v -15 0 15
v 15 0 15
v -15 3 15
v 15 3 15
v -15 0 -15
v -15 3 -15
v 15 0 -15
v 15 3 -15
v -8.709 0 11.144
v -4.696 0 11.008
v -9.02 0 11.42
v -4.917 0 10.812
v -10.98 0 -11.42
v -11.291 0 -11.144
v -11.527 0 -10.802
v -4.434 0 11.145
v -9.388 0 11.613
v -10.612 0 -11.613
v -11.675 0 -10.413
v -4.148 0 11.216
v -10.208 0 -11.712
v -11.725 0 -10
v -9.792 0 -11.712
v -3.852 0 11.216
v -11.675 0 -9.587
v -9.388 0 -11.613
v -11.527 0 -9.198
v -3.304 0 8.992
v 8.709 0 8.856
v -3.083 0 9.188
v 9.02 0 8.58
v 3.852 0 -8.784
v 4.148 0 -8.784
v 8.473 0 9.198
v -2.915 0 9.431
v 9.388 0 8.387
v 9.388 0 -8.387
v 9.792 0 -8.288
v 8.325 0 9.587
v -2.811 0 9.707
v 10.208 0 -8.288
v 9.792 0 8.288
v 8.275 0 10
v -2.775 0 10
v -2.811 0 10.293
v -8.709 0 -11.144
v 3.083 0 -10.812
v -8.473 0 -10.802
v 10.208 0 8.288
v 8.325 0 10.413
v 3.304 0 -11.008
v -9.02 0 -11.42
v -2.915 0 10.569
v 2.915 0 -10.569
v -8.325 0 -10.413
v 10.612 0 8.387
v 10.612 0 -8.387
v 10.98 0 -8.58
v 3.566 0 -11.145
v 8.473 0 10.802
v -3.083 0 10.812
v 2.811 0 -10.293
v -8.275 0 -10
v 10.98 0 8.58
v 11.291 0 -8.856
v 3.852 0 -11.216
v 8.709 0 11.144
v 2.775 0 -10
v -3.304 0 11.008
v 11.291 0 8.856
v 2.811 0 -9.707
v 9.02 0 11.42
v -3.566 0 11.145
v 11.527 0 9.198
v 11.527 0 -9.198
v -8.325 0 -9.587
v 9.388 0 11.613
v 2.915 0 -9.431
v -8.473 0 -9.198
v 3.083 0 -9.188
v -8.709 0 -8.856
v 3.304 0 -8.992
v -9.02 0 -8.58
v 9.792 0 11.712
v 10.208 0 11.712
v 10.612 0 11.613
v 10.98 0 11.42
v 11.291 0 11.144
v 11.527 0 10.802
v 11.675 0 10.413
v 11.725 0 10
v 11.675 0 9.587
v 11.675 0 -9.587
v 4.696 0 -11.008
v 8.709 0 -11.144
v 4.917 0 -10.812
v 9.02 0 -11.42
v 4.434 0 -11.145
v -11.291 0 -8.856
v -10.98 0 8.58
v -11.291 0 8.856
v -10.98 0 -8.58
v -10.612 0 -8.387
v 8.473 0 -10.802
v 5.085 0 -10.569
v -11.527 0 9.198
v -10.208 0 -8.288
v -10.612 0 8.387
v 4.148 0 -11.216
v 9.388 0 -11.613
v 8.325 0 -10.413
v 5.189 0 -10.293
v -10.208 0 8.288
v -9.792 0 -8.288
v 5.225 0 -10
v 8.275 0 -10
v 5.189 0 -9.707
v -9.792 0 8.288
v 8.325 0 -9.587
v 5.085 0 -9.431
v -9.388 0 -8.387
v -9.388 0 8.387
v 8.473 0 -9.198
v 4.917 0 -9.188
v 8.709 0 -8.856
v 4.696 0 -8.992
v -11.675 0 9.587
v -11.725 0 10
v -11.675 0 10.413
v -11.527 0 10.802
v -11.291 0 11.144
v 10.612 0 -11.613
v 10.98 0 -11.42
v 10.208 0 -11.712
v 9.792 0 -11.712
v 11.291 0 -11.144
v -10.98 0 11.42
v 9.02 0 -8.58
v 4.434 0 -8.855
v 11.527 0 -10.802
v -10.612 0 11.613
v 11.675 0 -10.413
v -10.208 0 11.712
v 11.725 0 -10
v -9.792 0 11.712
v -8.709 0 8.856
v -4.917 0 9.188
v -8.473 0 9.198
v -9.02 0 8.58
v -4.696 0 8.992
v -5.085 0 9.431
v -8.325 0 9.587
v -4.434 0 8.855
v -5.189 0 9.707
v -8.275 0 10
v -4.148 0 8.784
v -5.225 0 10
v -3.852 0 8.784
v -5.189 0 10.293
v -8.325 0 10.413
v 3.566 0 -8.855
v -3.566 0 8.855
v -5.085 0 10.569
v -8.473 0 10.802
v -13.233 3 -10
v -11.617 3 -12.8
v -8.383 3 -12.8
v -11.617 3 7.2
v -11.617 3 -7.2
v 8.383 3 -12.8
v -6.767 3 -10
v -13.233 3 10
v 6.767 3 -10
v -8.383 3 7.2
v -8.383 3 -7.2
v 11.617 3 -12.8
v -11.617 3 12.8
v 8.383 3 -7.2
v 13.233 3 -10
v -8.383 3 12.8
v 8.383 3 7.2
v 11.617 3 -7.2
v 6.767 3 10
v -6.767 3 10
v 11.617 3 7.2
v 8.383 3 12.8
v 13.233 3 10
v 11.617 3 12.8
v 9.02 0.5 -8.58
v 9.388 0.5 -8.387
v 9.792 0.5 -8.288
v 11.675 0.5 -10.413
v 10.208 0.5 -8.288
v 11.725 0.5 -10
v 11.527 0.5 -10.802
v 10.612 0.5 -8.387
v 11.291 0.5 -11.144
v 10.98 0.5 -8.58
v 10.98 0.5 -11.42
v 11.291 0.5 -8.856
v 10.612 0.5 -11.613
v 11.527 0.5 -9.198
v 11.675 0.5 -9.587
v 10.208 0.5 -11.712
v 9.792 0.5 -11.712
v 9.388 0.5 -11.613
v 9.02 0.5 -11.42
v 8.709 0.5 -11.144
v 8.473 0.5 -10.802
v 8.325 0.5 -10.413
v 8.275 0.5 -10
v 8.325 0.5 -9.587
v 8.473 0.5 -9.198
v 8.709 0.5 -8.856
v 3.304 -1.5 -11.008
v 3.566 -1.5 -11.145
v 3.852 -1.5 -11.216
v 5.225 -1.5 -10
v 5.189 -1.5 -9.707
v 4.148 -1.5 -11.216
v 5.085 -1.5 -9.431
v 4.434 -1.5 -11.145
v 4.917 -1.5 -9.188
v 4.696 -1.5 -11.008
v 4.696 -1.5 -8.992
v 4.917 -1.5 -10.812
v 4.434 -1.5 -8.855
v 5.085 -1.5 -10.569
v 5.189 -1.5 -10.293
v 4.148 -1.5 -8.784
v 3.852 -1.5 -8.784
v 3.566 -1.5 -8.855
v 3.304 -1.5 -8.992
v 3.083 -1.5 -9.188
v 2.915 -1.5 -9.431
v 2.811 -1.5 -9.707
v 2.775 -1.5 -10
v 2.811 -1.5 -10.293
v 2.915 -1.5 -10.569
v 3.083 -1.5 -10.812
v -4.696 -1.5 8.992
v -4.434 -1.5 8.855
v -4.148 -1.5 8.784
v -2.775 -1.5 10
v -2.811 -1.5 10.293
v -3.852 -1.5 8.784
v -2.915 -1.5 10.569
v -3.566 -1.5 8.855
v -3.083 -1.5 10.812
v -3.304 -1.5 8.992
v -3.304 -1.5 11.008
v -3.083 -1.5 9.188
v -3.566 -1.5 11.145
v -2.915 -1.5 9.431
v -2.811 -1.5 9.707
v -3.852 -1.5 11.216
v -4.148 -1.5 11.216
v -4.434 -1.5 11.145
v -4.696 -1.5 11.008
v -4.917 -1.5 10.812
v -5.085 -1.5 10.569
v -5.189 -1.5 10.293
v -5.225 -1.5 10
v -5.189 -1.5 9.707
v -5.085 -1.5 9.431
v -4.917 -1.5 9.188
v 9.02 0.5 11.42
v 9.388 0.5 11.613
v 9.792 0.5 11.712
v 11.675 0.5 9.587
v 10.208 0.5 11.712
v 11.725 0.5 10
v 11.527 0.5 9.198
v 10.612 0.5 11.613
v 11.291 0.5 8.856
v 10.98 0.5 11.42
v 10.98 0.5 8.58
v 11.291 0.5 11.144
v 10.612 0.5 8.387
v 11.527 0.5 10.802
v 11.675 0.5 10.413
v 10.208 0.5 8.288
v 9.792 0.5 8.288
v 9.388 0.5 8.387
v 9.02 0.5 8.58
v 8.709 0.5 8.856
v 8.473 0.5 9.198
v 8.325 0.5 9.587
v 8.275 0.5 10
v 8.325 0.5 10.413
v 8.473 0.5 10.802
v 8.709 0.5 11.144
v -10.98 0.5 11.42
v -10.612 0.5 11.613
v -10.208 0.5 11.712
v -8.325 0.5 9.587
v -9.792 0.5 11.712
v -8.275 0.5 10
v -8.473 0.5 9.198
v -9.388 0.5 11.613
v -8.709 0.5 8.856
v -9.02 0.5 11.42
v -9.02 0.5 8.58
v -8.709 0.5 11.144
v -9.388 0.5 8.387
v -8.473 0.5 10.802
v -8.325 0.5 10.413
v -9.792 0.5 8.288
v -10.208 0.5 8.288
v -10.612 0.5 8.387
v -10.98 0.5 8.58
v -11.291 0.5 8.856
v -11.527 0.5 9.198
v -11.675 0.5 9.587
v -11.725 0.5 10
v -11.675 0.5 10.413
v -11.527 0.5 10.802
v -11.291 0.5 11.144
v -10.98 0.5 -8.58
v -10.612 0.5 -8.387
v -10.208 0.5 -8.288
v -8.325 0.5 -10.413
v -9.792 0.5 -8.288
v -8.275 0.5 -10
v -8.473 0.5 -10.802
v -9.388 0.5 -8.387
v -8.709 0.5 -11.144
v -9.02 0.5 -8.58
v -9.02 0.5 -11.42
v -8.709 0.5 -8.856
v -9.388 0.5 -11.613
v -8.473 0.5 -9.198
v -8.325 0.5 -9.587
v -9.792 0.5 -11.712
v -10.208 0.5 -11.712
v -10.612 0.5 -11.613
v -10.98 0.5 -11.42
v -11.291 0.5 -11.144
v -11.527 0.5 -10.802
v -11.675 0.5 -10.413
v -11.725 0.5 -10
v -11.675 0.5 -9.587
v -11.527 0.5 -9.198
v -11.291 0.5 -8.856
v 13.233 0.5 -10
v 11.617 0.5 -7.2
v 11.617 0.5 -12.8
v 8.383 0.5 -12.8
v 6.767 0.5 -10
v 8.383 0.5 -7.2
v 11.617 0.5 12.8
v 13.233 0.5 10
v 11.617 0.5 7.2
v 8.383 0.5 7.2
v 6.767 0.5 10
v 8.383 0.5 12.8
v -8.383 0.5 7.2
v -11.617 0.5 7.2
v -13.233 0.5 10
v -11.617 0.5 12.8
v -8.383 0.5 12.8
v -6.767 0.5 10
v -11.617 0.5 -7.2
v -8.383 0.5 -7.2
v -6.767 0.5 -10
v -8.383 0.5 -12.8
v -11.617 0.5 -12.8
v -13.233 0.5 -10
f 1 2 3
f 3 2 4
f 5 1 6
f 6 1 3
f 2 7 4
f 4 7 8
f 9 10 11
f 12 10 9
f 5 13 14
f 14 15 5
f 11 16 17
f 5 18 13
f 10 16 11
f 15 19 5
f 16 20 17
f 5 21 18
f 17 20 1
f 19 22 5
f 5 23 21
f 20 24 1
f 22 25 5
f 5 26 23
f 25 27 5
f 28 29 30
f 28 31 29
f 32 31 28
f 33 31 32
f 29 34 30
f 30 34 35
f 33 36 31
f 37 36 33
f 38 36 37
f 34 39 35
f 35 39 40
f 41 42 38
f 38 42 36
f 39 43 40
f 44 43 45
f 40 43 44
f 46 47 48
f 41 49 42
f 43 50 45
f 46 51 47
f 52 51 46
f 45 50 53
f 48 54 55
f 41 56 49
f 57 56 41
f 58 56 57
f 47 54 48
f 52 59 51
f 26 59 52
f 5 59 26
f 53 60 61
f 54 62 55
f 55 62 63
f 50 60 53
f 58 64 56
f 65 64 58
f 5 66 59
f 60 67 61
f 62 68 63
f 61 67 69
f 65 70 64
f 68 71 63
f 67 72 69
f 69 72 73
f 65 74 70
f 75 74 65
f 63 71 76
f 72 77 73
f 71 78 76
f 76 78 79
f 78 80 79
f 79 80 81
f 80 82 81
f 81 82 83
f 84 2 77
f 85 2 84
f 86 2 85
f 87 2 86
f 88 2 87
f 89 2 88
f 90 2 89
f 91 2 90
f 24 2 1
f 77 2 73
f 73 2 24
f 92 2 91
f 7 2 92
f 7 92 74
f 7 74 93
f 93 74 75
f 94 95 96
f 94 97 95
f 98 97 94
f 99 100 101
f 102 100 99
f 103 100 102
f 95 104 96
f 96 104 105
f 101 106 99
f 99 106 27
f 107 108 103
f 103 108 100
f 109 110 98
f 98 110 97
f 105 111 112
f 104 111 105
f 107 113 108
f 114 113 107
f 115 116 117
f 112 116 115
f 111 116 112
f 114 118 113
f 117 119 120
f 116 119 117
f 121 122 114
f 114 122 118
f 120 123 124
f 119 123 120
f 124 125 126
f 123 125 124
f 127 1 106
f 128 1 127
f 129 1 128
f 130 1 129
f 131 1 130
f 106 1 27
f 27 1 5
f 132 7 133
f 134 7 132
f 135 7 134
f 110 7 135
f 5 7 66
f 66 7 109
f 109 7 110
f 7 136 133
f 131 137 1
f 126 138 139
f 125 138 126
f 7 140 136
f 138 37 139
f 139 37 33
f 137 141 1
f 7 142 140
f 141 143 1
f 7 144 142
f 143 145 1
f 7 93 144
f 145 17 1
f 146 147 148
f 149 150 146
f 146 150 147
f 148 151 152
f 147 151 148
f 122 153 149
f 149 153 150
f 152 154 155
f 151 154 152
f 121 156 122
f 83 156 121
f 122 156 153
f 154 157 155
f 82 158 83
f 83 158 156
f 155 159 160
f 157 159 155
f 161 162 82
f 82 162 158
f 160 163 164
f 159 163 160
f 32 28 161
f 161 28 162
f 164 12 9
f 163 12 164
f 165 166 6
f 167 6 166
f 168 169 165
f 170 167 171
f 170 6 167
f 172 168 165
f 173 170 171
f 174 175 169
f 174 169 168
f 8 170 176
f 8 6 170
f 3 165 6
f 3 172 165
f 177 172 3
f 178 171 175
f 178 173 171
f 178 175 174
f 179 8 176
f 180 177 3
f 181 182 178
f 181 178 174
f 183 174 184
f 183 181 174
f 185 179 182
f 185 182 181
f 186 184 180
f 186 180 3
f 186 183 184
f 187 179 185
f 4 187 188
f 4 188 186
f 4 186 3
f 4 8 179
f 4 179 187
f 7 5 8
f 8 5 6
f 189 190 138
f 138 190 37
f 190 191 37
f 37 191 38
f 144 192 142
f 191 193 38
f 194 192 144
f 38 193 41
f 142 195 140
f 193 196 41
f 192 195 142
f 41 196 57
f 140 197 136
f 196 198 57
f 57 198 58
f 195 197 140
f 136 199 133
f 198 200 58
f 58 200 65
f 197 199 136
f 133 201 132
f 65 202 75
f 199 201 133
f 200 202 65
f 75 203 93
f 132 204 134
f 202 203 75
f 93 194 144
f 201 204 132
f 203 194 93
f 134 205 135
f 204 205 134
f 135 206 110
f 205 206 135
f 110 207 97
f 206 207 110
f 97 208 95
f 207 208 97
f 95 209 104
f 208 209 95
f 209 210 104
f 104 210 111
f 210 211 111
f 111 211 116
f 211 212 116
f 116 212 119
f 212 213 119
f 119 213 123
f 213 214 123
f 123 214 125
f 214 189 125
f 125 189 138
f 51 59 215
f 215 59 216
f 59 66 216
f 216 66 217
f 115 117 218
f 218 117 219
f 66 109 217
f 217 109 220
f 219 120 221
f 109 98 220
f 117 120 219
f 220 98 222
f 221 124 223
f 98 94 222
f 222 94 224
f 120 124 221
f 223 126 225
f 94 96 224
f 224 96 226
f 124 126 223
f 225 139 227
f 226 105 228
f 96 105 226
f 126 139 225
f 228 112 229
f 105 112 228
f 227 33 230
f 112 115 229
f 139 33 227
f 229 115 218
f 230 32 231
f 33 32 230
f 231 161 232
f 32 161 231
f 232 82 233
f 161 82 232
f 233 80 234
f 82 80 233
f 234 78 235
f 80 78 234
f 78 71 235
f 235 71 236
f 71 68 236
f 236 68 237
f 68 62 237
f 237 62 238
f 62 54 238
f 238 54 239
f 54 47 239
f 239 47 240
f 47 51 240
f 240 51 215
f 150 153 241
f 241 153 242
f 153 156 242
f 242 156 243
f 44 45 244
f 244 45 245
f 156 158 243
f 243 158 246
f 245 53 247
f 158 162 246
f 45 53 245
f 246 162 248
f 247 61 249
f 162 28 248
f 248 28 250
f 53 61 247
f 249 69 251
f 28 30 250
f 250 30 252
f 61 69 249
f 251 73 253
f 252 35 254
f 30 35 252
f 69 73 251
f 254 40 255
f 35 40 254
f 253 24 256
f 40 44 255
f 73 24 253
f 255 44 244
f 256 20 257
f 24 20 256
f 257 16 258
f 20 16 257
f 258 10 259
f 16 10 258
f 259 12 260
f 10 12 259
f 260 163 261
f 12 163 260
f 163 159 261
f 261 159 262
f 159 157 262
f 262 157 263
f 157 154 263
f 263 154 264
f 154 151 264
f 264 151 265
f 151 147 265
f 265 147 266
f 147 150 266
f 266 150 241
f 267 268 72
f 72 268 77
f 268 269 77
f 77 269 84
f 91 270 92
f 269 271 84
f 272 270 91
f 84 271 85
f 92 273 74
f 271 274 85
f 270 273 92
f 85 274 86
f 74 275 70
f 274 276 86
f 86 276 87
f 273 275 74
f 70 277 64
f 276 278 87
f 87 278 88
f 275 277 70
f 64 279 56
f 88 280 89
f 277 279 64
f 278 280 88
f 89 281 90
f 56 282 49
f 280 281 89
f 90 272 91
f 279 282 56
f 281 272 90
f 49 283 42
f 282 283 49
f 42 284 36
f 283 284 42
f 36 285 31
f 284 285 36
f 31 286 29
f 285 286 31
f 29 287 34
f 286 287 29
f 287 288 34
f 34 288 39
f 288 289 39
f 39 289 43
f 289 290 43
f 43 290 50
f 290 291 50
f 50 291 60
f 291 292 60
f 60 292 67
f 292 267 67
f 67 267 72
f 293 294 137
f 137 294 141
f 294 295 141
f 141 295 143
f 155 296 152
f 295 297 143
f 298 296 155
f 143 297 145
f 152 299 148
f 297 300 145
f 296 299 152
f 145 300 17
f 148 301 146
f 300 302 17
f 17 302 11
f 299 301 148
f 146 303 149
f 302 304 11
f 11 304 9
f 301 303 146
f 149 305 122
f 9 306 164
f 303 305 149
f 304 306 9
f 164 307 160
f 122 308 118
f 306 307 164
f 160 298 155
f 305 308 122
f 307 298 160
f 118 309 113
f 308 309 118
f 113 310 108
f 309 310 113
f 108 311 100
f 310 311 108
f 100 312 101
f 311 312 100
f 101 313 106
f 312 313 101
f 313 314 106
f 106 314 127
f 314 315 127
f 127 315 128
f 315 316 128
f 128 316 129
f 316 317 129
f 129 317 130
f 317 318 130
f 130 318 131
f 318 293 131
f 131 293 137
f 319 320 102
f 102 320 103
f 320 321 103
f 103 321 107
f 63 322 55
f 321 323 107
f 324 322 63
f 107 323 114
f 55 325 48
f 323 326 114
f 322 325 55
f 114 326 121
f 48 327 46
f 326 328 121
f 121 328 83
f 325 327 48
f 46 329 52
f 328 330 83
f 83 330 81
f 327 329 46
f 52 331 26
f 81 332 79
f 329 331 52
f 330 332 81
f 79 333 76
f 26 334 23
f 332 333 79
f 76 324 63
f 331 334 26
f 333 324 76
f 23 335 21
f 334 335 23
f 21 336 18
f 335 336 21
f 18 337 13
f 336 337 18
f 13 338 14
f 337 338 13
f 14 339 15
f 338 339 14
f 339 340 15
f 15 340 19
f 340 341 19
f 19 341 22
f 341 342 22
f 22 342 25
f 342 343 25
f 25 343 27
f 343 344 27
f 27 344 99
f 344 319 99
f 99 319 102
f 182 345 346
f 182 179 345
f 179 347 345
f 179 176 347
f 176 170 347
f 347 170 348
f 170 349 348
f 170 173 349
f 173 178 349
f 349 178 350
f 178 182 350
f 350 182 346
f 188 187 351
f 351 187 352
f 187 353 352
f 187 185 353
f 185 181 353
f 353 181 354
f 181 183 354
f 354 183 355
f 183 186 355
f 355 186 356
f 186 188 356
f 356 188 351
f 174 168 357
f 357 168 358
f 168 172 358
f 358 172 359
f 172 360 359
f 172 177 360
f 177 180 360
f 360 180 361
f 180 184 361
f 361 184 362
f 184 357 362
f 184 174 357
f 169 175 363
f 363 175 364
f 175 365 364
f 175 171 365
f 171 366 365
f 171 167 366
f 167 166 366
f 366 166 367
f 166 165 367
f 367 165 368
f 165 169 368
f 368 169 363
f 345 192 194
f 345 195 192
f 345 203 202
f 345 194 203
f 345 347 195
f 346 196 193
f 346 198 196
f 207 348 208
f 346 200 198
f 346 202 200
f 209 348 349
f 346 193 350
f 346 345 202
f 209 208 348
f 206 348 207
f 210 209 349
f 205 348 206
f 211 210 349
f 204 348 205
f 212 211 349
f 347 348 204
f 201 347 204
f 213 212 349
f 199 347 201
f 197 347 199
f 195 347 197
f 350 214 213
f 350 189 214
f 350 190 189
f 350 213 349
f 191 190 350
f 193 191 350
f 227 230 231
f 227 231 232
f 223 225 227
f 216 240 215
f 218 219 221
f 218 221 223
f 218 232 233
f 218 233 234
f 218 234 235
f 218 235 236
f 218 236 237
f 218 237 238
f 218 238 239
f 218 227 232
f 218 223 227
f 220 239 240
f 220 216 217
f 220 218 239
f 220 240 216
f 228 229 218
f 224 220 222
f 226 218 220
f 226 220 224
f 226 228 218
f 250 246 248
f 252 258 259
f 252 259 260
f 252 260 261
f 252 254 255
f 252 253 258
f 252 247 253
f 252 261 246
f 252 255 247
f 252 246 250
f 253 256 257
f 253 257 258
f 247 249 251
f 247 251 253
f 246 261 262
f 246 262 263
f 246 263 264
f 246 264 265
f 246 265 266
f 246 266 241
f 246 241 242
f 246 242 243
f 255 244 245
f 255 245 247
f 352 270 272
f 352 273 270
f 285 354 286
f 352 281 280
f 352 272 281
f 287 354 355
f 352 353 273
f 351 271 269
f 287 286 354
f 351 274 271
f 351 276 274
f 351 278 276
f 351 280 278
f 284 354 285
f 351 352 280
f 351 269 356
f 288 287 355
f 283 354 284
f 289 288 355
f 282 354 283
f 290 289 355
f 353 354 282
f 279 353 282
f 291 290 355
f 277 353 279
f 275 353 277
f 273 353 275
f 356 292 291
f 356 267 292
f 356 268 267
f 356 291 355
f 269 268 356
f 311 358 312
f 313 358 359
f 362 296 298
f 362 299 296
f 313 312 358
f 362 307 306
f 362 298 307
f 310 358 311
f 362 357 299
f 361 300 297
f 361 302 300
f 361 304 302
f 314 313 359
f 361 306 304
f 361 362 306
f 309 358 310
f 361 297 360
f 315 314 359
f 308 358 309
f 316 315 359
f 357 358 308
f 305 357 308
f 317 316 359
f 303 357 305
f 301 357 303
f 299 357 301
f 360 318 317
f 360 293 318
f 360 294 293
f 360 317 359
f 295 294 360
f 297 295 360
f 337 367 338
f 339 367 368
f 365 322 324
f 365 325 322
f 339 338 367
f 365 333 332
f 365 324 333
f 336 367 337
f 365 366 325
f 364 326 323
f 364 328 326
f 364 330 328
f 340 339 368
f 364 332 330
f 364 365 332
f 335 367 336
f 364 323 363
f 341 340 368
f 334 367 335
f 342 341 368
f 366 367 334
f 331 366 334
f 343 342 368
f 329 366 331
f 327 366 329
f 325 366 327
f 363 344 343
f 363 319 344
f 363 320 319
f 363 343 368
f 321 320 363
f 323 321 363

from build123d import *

# Parameters (mm, degrees)
SKETCH_W        = 30
SKETCH_H        = 30
PAD_DEPTH       = 3
POCKET_DEPTH    = 2.5
SKETCH002_R     = 1.725
POCKET001_DEPTH = 5
SKETCH003_R     = 1.225
PAD001_DEPTH    = 1.5


with BuildPart() as part:
    # Sketch → Pad (new body)
    with BuildSketch(Plane.XZ):
        Rectangle(SKETCH_W, SKETCH_H)
    extrude(amount=-PAD_DEPTH)

    # Sketch001 (on Face6 of Pad) → Pocket (cut)
    with BuildSketch(Plane(origin=(0, 3, 0), x_dir=(1, 0, 0), z_dir=(0, 1, 0))):
        Polygon((-11.616581, 7.2), (-8.383419, 7.2), (-6.766838, 10), (-8.383419, 12.8), (-11.616581, 12.8), (-13.233162, 10), align=None)
        Polygon((11.616581, 7.2), (13.233162, 10), (11.616581, 12.8), (8.383419, 12.8), (6.766838, 10), (8.383419, 7.2), align=None)
        Polygon((11.616581, -12.8), (13.233162, -10), (11.616581, -7.2), (8.383419, -7.2), (6.766838, -10), (8.383419, -12.8), align=None)
        Polygon((-8.383419, -7.2), (-11.616581, -7.2), (-13.233162, -10), (-11.616581, -12.8), (-8.383419, -12.8), (-6.766838, -10), align=None)
    extrude(amount=-POCKET_DEPTH, mode=Mode.SUBTRACT)

    # Sketch002 (on Face33 of Pocket) → Pocket001 (cut)
    with BuildSketch(Plane(origin=(0, 0.5, 0), x_dir=(1, 0, 0), z_dir=(0, 1, 0))):
        with Locations((-10, 10)):
            Circle(SKETCH002_R)
        with Locations((10, 10)):
            Circle(SKETCH002_R)
        with Locations((10, -10)):
            Circle(SKETCH002_R)
        with Locations((-10, -10)):
            Circle(SKETCH002_R)
    extrude(amount=-POCKET001_DEPTH, mode=Mode.SUBTRACT)

    # Sketch003 (on Face4 of Pocket001) → Pad001 (join)
    with BuildSketch(Plane.XZ):
        with Locations((4, -10)):
            Circle(SKETCH003_R)
        with Locations((-4, 10)):
            Circle(SKETCH003_R)
    extrude(amount=PAD001_DEPTH)


solid = part.part
